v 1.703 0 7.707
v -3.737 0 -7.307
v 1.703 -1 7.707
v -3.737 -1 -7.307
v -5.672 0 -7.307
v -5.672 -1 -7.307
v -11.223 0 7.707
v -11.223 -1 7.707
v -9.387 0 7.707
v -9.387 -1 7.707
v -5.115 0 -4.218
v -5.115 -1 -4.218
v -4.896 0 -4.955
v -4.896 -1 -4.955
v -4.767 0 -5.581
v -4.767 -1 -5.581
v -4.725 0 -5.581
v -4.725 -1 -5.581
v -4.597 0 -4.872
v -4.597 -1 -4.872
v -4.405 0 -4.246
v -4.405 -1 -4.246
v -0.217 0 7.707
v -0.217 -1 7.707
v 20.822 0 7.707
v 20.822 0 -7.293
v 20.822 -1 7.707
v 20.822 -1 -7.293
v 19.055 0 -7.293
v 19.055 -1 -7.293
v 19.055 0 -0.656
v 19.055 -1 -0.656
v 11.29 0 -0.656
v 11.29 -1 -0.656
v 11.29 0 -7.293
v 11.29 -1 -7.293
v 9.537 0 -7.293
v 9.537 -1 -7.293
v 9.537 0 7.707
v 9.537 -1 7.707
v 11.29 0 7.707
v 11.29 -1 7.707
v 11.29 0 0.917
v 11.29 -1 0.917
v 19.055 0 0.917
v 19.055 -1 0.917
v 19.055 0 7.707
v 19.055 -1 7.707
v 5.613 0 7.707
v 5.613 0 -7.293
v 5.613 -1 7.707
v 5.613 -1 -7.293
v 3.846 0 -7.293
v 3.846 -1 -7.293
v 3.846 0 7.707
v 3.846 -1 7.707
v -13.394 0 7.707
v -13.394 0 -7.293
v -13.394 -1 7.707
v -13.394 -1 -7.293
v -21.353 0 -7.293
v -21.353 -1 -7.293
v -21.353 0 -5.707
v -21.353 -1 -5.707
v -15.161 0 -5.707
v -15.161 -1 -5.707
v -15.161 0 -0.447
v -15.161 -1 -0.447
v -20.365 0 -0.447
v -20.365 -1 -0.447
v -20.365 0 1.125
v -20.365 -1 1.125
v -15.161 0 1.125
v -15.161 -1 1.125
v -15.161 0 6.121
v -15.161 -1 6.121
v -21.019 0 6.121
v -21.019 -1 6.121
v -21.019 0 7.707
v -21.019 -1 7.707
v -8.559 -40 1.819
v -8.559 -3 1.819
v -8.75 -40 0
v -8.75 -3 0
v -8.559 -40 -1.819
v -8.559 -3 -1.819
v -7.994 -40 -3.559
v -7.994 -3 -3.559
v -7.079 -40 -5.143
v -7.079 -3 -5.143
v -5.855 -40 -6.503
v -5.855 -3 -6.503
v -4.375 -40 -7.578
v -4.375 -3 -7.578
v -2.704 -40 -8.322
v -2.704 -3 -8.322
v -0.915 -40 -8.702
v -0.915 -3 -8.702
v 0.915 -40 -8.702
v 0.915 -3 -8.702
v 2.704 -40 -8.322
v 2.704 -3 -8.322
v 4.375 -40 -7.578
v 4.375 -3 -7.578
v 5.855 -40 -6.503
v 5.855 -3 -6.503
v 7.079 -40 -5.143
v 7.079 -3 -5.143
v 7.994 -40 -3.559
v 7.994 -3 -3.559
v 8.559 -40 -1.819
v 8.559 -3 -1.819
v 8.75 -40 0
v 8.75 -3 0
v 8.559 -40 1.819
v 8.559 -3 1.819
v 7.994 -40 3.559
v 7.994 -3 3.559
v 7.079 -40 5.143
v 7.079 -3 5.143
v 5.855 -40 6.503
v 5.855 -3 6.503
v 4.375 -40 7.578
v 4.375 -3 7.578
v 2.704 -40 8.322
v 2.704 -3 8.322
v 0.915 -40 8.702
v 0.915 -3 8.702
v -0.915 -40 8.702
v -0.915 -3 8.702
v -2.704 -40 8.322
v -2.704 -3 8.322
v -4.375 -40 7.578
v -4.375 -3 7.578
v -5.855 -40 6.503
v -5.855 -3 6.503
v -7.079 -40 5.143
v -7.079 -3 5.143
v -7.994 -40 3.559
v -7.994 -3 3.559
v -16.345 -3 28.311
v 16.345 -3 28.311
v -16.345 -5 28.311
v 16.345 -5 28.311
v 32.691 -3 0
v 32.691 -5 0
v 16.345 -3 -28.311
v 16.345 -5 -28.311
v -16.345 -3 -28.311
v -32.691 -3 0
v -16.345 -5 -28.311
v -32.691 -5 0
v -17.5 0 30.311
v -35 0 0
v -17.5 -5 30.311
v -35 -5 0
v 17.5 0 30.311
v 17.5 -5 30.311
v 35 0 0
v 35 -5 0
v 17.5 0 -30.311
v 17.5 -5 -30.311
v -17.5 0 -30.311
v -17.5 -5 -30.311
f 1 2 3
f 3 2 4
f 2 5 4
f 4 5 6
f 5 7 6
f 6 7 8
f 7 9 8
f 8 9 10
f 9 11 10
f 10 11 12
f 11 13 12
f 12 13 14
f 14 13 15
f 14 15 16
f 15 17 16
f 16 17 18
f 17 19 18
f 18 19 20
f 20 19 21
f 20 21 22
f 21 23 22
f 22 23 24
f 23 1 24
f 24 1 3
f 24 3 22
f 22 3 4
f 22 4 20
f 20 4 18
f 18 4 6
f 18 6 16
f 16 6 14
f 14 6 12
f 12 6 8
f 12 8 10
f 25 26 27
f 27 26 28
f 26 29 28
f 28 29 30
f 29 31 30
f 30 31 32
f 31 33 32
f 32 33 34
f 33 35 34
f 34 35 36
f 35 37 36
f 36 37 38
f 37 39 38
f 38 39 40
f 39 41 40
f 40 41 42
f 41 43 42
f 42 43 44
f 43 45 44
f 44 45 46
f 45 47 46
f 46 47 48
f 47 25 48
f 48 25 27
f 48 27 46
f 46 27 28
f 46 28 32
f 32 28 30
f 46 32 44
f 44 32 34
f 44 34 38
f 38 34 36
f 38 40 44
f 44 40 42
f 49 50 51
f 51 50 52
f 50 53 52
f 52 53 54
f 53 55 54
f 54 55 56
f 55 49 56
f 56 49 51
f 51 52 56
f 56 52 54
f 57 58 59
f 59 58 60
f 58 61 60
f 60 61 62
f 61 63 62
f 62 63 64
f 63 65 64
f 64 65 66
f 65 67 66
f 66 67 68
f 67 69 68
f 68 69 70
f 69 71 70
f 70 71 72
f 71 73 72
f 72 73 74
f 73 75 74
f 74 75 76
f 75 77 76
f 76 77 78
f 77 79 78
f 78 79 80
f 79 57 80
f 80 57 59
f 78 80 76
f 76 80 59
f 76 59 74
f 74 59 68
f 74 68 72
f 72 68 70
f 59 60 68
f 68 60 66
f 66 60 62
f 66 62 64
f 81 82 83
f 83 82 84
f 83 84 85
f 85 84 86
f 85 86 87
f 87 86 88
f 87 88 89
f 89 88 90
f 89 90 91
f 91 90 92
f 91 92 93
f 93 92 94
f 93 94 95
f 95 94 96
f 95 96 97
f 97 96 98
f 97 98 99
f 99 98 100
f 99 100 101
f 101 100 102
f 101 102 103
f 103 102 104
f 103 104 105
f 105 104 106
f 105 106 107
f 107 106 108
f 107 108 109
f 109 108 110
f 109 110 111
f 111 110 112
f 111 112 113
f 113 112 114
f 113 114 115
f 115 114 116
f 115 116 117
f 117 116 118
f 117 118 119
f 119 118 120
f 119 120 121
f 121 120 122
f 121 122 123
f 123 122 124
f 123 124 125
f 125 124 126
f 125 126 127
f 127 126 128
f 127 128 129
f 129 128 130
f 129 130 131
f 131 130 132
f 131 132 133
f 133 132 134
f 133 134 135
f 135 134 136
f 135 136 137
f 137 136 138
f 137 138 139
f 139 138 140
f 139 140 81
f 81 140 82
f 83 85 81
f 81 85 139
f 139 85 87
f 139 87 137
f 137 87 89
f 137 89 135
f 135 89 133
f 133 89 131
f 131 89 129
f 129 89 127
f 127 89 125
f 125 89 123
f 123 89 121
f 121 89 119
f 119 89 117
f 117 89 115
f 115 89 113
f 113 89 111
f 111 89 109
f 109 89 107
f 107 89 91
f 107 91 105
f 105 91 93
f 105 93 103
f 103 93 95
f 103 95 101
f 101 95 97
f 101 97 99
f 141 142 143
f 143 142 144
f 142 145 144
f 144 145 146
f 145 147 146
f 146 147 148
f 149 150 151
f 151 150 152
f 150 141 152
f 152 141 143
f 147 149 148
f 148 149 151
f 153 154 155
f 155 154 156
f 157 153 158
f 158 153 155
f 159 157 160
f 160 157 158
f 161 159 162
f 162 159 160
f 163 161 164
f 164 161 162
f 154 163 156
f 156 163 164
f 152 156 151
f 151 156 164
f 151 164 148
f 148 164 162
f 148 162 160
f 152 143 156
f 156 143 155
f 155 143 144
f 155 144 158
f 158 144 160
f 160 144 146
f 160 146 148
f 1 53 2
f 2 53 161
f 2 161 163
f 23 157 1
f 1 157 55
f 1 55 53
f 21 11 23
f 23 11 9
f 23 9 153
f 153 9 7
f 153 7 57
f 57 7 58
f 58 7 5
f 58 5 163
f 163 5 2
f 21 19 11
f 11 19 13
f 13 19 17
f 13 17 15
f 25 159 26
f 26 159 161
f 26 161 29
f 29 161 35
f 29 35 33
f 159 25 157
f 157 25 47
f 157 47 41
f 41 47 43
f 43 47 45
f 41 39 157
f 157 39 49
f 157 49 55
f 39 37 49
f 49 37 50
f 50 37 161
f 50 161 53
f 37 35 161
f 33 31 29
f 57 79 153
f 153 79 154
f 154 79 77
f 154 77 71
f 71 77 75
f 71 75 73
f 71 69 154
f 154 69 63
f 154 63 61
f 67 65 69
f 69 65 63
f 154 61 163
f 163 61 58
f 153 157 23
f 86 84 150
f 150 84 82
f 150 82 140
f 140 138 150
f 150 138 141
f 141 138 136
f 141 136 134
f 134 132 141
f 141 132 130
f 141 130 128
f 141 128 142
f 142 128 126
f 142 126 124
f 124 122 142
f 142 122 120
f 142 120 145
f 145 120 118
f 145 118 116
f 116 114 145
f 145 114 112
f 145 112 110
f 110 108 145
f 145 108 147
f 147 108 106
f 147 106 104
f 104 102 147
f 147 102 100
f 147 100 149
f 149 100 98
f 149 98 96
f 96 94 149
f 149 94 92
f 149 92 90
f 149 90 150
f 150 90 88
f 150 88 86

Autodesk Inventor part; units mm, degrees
ref_plane "YZ Plane" through (0, 0, 0) normal (1, 0, 0) x (0, 1, 0)
ref_plane "XZ Plane" through (0, 0, 0) normal (0, 1, 0) x (-1, 0, 0)
ref_plane "XY Plane" through (0, 0, 0) normal (0, 0, 1) x (1, 0, 0)
sketch "Sketch1" plane through (0, 0, 0) normal (0, 1, 0) x (-1, 0, 0)
  circle A0 centre (0, 0) radius 35
  line L0 (17.5, -30.3109) -> (-17.5, -30.3109)
  line L1 (-17.5, -30.3109) -> (-35, 0)
  line L2 (-35, 0) -> (-17.5, 30.3109)
  line L3 (-17.5, 30.3109) -> (17.5, 30.3109)
  line L4 (17.5, 30.3109) -> (35, 0)
  line L5 (35, 0) -> (17.5, -30.3109)
  line L6 (16.3453, -28.3109) -> (-16.3453, -28.3109)
  line L7 (-16.3453, -28.3109) -> (-32.6906, 0)
  line L8 (-32.6906, 0) -> (-16.3453, 28.3109)
  line L9 (-16.3453, 28.3109) -> (16.3453, 28.3109)
  line L10 (16.3453, 28.3109) -> (32.6906, 0)
  line L11 (32.6906, 0) -> (16.3453, -28.3109)
  line L12 (0, 0) -> (-17.5, -30.3109)
  circle A1 centre (0, 0) radius 8.75
  line L13 (-22.7839, 7.707) -> (22.7839, 7.707) construction
  line L14 (22.7839, 7.707) -> (22.7839, -7.707) construction
  line L15 (22.7839, -7.707) -> (-22.7839, -7.707) construction
  line L16 (-22.7839, -7.707) -> (-22.7839, 7.707) construction
  line L17 (0, 0) -> (0, -28.3109) construction
  line L18 (1.5082, 8.619) -> (10.7506, 8.619) construction
  line L19 (-22.7839, 0) -> (22.7839, 0) construction
  line L20 (0, 7.707) -> (0, -7.707) construction
  line L21 (-20.822, 7.707) -> (-19.0548, 7.707)
  line L22 (-19.0548, 7.707) -> (-19.0548, 0.9167)
  line L23 (-19.0548, 0.9167) -> (-11.2904, 0.9167)
  line L24 (-11.2904, 0.9167) -> (-11.2904, 7.707)
  line L25 (-11.2904, 7.707) -> (-9.5372, 7.707)
  line L26 (-9.5372, 7.707) -> (-9.5372, -7.293)
  line L27 (-9.5372, -7.293) -> (-11.2904, -7.293)
  line L28 (-11.2904, -7.293) -> (-11.2904, -0.6557)
  line L29 (-11.2904, -0.6557) -> (-19.0548, -0.6557)
  line L30 (-19.0548, -0.6557) -> (-19.0548, -7.293)
  line L31 (-19.0548, -7.293) -> (-20.822, -7.293)
  line L32 (-20.822, -7.293) -> (-20.822, 7.707)
  line L33 (-5.6133, 7.707) -> (-3.8461, 7.707)
  line L34 (-3.8461, 7.707) -> (-3.8461, -7.293)
  line L35 (-3.8461, -7.293) -> (-5.6133, -7.293)
  line L36 (-5.6133, -7.293) -> (-5.6133, 7.707)
  line L37 (-1.7032, 7.707) -> (0.217, 7.707)
  line L38 (0.217, 7.707) -> (4.4053, -4.2456)
  spline S0 degree 2 poles (4.4053, -4.2456) (4.6279, -4.8301) (4.7253, -5.5815) knots 0 0 0 1 1 1
  line L39 (4.7253, -5.5815) -> (4.7671, -5.5815)
  spline S1 degree 2 poles (4.7671, -5.5815) (4.8506, -5.011) (5.1149, -4.2178) knots 0 0 0 1 1 1
  line L40 (5.1149, -4.2178) -> (9.3867, 7.707)
  line L41 (9.3867, 7.707) -> (11.2235, 7.707)
  line L42 (11.2235, 7.707) -> (5.6715, -7.3069)
  line L43 (5.6715, -7.3069) -> (3.7374, -7.3069)
  line L44 (3.7374, -7.3069) -> (-1.7032, 7.707)
  line L45 (13.3942, 7.707) -> (21.0194, 7.707)
  line L46 (21.0194, 7.707) -> (21.0194, 6.1208)
  line L47 (21.0194, 6.1208) -> (15.1613, 6.1208)
  line L48 (15.1613, 6.1208) -> (15.1613, 1.1254)
  line L49 (15.1613, 1.1254) -> (20.3654, 1.1254)
  line L50 (20.3654, 1.1254) -> (20.3654, -0.4469)
  line L51 (20.3654, -0.4469) -> (15.1613, -0.4469)
  line L52 (15.1613, -0.4469) -> (15.1613, -5.7067)
  line L53 (15.1613, -5.7067) -> (21.3534, -5.7067)
  line L54 (21.3534, -5.7067) -> (21.3534, -7.293)
  line L55 (21.3534, -7.293) -> (13.3942, -7.293)
  line L56 (13.3942, -7.293) -> (13.3942, 7.707)
  dimension "d0" = 70
  dimension "d2" = 17.5
  dimension "d1" = 2
extrude "Extrusion1" add sketch "Sketch1" against normal blind 3 contours L6 L7 L8 L9 L10 L11 | L35 L36 A1 | A1 L36 L33 | A1 L42 L43 | L40 L41 L42 A1 | L21 L22 L23 L24 L25 L26 L27 L28 L29 L30 L31 L32 | L45 L46 L47 L48 L49 L50 L51 L52 L53 L54 L55 L56
extrude "Extrusion3" add sketch "Sketch1" against normal blind 5 contours L5 L0 L1 L2 L3 L4
extrude "Extrusion4" add sketch "Sketch1" against normal blind 40 contours L34 L35 L12 | L12 L35 A1 L36 L33 L34 | L34 L33 A1 L40 S1 L39 S0 L38 L37 L44 L43 L12 L35 | L12 A1 L35 | L43 L44 L37 L38 S0 L39 S1 L40 A1 L42 | A1 L36 | L42 A1
extrude "Extrusion6" cut sketch "Sketch1" against normal blind 1 contours L34 L35 L12 | L12 L35 A1 L36 L33 L34 | L35 L36 A1 | A1 L36 L33 | L43 L44 L37 L38 S0 L39 S1 L40 A1 L42 | A1 L42 L43 | L40 L41 L42 A1 | L21 L22 L23 L24 L25 L26 L27 L28 L29 L30 L31 L32 | L45 L46 L47 L48 L49 L50 L51 L52 L53 L54 L55 L56
equation "\"d0\" = diam"
equation "\"d2\" = 0.25 * diam"
equation "\"d3\" = thickness"
equation "\"d9\" = 8 * d5"
equation "\"thickness\" = 3"
equation "\"diam\" = 70"
equation "\"d5\" = 5"
properties part number "stand"
